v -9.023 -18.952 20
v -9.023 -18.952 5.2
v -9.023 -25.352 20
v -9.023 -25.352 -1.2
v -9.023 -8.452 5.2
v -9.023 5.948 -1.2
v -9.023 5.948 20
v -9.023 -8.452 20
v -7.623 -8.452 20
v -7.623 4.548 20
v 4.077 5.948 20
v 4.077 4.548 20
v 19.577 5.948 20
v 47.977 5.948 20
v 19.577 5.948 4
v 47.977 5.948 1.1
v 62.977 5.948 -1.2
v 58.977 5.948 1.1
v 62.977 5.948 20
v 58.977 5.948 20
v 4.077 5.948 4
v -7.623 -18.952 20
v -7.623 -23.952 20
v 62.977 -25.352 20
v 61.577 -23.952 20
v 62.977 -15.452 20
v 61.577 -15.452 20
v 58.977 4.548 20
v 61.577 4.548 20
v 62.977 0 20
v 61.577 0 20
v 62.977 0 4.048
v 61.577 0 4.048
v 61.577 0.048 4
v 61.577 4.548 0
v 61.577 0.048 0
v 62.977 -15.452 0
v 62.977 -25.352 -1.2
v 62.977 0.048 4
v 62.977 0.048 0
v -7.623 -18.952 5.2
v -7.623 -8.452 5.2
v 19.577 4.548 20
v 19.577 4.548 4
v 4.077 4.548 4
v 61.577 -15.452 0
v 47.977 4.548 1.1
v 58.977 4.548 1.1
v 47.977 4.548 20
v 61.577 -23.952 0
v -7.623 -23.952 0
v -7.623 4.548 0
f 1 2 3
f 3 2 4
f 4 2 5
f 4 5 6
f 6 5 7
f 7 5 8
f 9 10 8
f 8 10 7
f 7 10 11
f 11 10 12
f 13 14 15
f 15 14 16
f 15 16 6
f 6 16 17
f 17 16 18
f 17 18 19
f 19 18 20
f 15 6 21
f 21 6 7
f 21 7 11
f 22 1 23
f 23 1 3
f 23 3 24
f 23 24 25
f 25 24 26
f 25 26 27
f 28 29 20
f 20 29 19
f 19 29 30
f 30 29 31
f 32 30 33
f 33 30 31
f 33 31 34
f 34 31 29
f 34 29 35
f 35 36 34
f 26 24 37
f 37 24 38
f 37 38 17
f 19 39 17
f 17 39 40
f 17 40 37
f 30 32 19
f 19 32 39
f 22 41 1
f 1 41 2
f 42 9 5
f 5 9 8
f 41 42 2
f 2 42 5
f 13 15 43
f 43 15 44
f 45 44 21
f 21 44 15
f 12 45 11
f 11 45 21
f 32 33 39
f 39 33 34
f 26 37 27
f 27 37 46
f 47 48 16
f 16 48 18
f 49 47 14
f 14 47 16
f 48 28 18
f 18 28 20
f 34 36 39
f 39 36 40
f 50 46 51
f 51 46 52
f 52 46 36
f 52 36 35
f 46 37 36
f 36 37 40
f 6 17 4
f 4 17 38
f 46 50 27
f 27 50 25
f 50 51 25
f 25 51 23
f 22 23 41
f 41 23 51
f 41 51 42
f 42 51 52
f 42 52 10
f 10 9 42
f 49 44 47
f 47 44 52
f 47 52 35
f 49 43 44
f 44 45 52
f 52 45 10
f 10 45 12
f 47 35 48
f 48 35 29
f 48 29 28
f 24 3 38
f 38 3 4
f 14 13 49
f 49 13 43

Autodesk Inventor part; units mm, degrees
ref_plane "YZ Plane" through (0, 0, 0) normal (1, 0, 0) x (0, 1, 0)
ref_plane "XZ Plane" through (0, 0, 0) normal (0, 1, 0) x (-1, 0, 0)
ref_plane "XY Plane" through (0, 0, 0) normal (0, 0, 1) x (1, 0, 0)
sketch "Sketch1" plane through (0, 0, 0) normal (0, 0, 1) x (1, 0, 0)
  line L0 (-7.6232, 4.5478) -> (61.5768, 4.5478)
  line L1 (61.5768, 4.5478) -> (61.5768, -23.9522)
  line L2 (61.5768, -23.9522) -> (-7.6232, -23.9522)
  line L3 (-7.6232, -23.9522) -> (-7.6232, 4.5478)
  line L4 (62.9768, 5.9478) -> (-9.0232, 5.9478)
  line L5 (-9.0232, 5.9478) -> (-9.0232, -25.3522)
  line L6 (-9.0232, -25.3522) -> (62.9768, -25.3522)
  line L7 (62.9768, -25.3522) -> (62.9768, 5.9478)
  point P0 (0, 0)
  dimension "d0" = 69.2
  dimension "d1" = 28.5
  dimension "d2" = 1.4
extrude "Extrusion1" add sketch "Sketch1" along normal blind 20
sketch "Sketch2" plane through (0, 0, 0) normal (0, 0, -1) x (-1, 0, 0)
  line L0 (9.0232, 5.9478) -> (9.0232, -25.3522) projected
  line L1 (-62.9768, 5.9478) -> (9.0232, 5.9478) projected
  line L2 (9.0232, -25.3522) -> (-62.9768, -25.3522) projected
  line L3 (-62.9768, -25.3522) -> (-62.9768, 5.9478) projected
  point P0 (0, 0)
extrude "Extrusion2" add sketch "Sketch2" along normal blind 1.2
sketch "Sketch3" plane through (62.9768, -25.3522, 20) normal (1, 0, 0) x (0, 0, -1)
  line L0 (20, 29.9) -> (0, 29.9) projected
  line L1 (20, 1.4) -> (0, 1.4) projected
  line L2 (20, 1.4) -> (20, 29.9) projected
  line L3 (20, 25.4) -> (14, 25.4)
  line L4 (14, 25.4) -> (14, 9.9)
  line L5 (14, 9.9) -> (20, 9.9)
  line L6 (20, 9.9) -> (20, 25.4)
  point P0 (20, 25.3522)
  dimension "d7" = 4.5
  dimension "d8" = 6
  dimension "d9" = 15.5
extrude "Extrusion3" cut sketch "Sketch3" against normal up to surface (1.4 mm away)
sketch "Sketch4" plane through (-9.0232, 5.9478, 20) normal (0, 1, 0) x (1, 0, 0)
  line L0 (70.6, 20) -> (70.6, 0) projected
  line L1 (70.6, 20) -> (1.4, 20) projected
  line L2 (68, 18.9) -> (57, 18.9)
  line L3 (57, 18.9) -> (57, 13.5)
  line L4 (57, 13.5) -> (68, 13.5)
  line L5 (68, 13.5) -> (68, 18.9)
  point P0 (9.0232, 20)
  dimension "d12" = 11
  dimension "d13" = 2.6
  dimension "d14" = 1.1
  dimension "d15" = 5.4
extrude "Extrusion4" cut sketch "Sketch4" against normal up to surface (1.4 mm away)
chamfer "Chamfer1" distance 2 angle 45 1 edges at (62.2768, -15.4522, 6)
chamfer "Chamfer2" distance 2 angle 45 1 edges at (62.2768, 0.0478, 6)
sketch "Sketch5" plane through (-9.0232, 5.9478, 20) normal (0, 1, 0) x (1, 0, 0)
  line L0 (1.4, 20) -> (1.4, 0) projected
  line L1 (70.6, 20) -> (1.4, 20) projected
  line L2 (13.1, 16) -> (28.6, 16)
  line L3 (28.6, 16) -> (28.6, 9.8)
  line L4 (28.6, 9.8) -> (13.1, 9.8)
  line L5 (13.1, 9.8) -> (13.1, 16)
  point P0 (9.0232, 20)
  dimension "d24" = 4
  dimension "d25" = 6.2
  dimension "d26" = 15.5
  dimension "d27" = 11.7
extrude "Extrusion5" cut sketch "Sketch5" against normal up to surface (1.4 mm away)
chamfer "Chamfer3" distance 2 angle 45 2 edges at (4.0768, 5.2478, 10.2) (19.5768, 5.2478, 10.2)
sketch "Sketch6" plane through (-9.0232, -25.3522, 20) normal (-1, 0, 0) x (0, 0, 1)
  line L0 (-20, 1.4) -> (0, 1.4) projected
  line L1 (-20, 29.9) -> (-20, 1.4) projected
  line L2 (-14.8, 6.4) -> (-9.6, 6.4)
  line L3 (-9.6, 6.4) -> (-9.6, 16.9)
  line L4 (-9.6, 16.9) -> (-14.8, 16.9)
  line L5 (-14.8, 16.9) -> (-14.8, 6.4)
  point P0 (-20, 25.3522)
  dimension "d33" = 5
  dimension "d34" = 10.5
  dimension "d35" = 5.2
  dimension "d36" = 5.2
extrude "Extrusion6" cut sketch "Sketch6" against normal up to surface (1.4 mm away)
sketch "Sketch8" plane through (62.9768, -25.3522, 20) normal (1, 0, 0) x (0, 0, -1)
  line L0 (16, 9.9) -> (20, 9.9) projected
  line L1 (0, 29.9) -> (0, 1.4) projected
  line L2 (16, 9.9) -> (0, 9.9)
  line L3 (0, 9.9) -> (0, 25.3522)
  line L4 (0, 25.3522) -> (16, 25.3522)
  line L5 (16, 25.3522) -> (16, 9.9)
  point P0 (20, 25.3522)
extrude "Extrusion7" cut sketch "Sketch8" against normal up to surface (1.4 mm away)
sketch "Sketch9" plane through (-7.6232, 4.5478, 20) normal (0, -1, 0) x (1, 0, 0)
  line L0 (27.2, -11.8) -> (25.2, -9.8) projected
  line L1 (13.7, -9.8) -> (11.7, -11.8) projected
  line L2 (0, 0) -> (69.2, 0) projected
  line L3 (11.7, -11.8) -> (27.2, -11.8)
  line L4 (27.2, -11.8) -> (27.2, 0)
  line L5 (27.2, 0) -> (11.7, 0)
  line L6 (11.7, 0) -> (11.7, -11.8)
  line L7 (55.6, -13.5) -> (66.6, -13.5) projected
  line L8 (55.6, -13.5) -> (66.6, -13.5)
  line L9 (66.6, -13.5) -> (66.6, 0)
  line L10 (66.6, 0) -> (55.6, 0)
  line L11 (55.6, 0) -> (55.6, -13.5)
  point P0 (7.6232, -20)
extrude "Extrusion8" cut sketch "Sketch9" against normal up to surface (1.4 mm away)
sketch "Sketch10" plane through (-9.0232, -25.3522, 20) normal (-1, 0, 0) x (0, 0, 1)
  line L0 (-9.6, 16.9) -> (-9.6, 6.4) projected
  line L1 (0, 1.4) -> (0, 29.9) projected
  line L2 (-9.6, 6.4) -> (0, 6.4)
  line L3 (0, 6.4) -> (0, 16.9)
  line L4 (0, 16.9) -> (-9.6, 16.9)
  line L5 (-9.6, 16.9) -> (-9.6, 6.4)
  point P0 (-20, 25.3522)
extrude "Extrusion9" cut sketch "Sketch10" against normal up to surface (1.4 mm away)
properties part number "PlutoIIxHDMI"
